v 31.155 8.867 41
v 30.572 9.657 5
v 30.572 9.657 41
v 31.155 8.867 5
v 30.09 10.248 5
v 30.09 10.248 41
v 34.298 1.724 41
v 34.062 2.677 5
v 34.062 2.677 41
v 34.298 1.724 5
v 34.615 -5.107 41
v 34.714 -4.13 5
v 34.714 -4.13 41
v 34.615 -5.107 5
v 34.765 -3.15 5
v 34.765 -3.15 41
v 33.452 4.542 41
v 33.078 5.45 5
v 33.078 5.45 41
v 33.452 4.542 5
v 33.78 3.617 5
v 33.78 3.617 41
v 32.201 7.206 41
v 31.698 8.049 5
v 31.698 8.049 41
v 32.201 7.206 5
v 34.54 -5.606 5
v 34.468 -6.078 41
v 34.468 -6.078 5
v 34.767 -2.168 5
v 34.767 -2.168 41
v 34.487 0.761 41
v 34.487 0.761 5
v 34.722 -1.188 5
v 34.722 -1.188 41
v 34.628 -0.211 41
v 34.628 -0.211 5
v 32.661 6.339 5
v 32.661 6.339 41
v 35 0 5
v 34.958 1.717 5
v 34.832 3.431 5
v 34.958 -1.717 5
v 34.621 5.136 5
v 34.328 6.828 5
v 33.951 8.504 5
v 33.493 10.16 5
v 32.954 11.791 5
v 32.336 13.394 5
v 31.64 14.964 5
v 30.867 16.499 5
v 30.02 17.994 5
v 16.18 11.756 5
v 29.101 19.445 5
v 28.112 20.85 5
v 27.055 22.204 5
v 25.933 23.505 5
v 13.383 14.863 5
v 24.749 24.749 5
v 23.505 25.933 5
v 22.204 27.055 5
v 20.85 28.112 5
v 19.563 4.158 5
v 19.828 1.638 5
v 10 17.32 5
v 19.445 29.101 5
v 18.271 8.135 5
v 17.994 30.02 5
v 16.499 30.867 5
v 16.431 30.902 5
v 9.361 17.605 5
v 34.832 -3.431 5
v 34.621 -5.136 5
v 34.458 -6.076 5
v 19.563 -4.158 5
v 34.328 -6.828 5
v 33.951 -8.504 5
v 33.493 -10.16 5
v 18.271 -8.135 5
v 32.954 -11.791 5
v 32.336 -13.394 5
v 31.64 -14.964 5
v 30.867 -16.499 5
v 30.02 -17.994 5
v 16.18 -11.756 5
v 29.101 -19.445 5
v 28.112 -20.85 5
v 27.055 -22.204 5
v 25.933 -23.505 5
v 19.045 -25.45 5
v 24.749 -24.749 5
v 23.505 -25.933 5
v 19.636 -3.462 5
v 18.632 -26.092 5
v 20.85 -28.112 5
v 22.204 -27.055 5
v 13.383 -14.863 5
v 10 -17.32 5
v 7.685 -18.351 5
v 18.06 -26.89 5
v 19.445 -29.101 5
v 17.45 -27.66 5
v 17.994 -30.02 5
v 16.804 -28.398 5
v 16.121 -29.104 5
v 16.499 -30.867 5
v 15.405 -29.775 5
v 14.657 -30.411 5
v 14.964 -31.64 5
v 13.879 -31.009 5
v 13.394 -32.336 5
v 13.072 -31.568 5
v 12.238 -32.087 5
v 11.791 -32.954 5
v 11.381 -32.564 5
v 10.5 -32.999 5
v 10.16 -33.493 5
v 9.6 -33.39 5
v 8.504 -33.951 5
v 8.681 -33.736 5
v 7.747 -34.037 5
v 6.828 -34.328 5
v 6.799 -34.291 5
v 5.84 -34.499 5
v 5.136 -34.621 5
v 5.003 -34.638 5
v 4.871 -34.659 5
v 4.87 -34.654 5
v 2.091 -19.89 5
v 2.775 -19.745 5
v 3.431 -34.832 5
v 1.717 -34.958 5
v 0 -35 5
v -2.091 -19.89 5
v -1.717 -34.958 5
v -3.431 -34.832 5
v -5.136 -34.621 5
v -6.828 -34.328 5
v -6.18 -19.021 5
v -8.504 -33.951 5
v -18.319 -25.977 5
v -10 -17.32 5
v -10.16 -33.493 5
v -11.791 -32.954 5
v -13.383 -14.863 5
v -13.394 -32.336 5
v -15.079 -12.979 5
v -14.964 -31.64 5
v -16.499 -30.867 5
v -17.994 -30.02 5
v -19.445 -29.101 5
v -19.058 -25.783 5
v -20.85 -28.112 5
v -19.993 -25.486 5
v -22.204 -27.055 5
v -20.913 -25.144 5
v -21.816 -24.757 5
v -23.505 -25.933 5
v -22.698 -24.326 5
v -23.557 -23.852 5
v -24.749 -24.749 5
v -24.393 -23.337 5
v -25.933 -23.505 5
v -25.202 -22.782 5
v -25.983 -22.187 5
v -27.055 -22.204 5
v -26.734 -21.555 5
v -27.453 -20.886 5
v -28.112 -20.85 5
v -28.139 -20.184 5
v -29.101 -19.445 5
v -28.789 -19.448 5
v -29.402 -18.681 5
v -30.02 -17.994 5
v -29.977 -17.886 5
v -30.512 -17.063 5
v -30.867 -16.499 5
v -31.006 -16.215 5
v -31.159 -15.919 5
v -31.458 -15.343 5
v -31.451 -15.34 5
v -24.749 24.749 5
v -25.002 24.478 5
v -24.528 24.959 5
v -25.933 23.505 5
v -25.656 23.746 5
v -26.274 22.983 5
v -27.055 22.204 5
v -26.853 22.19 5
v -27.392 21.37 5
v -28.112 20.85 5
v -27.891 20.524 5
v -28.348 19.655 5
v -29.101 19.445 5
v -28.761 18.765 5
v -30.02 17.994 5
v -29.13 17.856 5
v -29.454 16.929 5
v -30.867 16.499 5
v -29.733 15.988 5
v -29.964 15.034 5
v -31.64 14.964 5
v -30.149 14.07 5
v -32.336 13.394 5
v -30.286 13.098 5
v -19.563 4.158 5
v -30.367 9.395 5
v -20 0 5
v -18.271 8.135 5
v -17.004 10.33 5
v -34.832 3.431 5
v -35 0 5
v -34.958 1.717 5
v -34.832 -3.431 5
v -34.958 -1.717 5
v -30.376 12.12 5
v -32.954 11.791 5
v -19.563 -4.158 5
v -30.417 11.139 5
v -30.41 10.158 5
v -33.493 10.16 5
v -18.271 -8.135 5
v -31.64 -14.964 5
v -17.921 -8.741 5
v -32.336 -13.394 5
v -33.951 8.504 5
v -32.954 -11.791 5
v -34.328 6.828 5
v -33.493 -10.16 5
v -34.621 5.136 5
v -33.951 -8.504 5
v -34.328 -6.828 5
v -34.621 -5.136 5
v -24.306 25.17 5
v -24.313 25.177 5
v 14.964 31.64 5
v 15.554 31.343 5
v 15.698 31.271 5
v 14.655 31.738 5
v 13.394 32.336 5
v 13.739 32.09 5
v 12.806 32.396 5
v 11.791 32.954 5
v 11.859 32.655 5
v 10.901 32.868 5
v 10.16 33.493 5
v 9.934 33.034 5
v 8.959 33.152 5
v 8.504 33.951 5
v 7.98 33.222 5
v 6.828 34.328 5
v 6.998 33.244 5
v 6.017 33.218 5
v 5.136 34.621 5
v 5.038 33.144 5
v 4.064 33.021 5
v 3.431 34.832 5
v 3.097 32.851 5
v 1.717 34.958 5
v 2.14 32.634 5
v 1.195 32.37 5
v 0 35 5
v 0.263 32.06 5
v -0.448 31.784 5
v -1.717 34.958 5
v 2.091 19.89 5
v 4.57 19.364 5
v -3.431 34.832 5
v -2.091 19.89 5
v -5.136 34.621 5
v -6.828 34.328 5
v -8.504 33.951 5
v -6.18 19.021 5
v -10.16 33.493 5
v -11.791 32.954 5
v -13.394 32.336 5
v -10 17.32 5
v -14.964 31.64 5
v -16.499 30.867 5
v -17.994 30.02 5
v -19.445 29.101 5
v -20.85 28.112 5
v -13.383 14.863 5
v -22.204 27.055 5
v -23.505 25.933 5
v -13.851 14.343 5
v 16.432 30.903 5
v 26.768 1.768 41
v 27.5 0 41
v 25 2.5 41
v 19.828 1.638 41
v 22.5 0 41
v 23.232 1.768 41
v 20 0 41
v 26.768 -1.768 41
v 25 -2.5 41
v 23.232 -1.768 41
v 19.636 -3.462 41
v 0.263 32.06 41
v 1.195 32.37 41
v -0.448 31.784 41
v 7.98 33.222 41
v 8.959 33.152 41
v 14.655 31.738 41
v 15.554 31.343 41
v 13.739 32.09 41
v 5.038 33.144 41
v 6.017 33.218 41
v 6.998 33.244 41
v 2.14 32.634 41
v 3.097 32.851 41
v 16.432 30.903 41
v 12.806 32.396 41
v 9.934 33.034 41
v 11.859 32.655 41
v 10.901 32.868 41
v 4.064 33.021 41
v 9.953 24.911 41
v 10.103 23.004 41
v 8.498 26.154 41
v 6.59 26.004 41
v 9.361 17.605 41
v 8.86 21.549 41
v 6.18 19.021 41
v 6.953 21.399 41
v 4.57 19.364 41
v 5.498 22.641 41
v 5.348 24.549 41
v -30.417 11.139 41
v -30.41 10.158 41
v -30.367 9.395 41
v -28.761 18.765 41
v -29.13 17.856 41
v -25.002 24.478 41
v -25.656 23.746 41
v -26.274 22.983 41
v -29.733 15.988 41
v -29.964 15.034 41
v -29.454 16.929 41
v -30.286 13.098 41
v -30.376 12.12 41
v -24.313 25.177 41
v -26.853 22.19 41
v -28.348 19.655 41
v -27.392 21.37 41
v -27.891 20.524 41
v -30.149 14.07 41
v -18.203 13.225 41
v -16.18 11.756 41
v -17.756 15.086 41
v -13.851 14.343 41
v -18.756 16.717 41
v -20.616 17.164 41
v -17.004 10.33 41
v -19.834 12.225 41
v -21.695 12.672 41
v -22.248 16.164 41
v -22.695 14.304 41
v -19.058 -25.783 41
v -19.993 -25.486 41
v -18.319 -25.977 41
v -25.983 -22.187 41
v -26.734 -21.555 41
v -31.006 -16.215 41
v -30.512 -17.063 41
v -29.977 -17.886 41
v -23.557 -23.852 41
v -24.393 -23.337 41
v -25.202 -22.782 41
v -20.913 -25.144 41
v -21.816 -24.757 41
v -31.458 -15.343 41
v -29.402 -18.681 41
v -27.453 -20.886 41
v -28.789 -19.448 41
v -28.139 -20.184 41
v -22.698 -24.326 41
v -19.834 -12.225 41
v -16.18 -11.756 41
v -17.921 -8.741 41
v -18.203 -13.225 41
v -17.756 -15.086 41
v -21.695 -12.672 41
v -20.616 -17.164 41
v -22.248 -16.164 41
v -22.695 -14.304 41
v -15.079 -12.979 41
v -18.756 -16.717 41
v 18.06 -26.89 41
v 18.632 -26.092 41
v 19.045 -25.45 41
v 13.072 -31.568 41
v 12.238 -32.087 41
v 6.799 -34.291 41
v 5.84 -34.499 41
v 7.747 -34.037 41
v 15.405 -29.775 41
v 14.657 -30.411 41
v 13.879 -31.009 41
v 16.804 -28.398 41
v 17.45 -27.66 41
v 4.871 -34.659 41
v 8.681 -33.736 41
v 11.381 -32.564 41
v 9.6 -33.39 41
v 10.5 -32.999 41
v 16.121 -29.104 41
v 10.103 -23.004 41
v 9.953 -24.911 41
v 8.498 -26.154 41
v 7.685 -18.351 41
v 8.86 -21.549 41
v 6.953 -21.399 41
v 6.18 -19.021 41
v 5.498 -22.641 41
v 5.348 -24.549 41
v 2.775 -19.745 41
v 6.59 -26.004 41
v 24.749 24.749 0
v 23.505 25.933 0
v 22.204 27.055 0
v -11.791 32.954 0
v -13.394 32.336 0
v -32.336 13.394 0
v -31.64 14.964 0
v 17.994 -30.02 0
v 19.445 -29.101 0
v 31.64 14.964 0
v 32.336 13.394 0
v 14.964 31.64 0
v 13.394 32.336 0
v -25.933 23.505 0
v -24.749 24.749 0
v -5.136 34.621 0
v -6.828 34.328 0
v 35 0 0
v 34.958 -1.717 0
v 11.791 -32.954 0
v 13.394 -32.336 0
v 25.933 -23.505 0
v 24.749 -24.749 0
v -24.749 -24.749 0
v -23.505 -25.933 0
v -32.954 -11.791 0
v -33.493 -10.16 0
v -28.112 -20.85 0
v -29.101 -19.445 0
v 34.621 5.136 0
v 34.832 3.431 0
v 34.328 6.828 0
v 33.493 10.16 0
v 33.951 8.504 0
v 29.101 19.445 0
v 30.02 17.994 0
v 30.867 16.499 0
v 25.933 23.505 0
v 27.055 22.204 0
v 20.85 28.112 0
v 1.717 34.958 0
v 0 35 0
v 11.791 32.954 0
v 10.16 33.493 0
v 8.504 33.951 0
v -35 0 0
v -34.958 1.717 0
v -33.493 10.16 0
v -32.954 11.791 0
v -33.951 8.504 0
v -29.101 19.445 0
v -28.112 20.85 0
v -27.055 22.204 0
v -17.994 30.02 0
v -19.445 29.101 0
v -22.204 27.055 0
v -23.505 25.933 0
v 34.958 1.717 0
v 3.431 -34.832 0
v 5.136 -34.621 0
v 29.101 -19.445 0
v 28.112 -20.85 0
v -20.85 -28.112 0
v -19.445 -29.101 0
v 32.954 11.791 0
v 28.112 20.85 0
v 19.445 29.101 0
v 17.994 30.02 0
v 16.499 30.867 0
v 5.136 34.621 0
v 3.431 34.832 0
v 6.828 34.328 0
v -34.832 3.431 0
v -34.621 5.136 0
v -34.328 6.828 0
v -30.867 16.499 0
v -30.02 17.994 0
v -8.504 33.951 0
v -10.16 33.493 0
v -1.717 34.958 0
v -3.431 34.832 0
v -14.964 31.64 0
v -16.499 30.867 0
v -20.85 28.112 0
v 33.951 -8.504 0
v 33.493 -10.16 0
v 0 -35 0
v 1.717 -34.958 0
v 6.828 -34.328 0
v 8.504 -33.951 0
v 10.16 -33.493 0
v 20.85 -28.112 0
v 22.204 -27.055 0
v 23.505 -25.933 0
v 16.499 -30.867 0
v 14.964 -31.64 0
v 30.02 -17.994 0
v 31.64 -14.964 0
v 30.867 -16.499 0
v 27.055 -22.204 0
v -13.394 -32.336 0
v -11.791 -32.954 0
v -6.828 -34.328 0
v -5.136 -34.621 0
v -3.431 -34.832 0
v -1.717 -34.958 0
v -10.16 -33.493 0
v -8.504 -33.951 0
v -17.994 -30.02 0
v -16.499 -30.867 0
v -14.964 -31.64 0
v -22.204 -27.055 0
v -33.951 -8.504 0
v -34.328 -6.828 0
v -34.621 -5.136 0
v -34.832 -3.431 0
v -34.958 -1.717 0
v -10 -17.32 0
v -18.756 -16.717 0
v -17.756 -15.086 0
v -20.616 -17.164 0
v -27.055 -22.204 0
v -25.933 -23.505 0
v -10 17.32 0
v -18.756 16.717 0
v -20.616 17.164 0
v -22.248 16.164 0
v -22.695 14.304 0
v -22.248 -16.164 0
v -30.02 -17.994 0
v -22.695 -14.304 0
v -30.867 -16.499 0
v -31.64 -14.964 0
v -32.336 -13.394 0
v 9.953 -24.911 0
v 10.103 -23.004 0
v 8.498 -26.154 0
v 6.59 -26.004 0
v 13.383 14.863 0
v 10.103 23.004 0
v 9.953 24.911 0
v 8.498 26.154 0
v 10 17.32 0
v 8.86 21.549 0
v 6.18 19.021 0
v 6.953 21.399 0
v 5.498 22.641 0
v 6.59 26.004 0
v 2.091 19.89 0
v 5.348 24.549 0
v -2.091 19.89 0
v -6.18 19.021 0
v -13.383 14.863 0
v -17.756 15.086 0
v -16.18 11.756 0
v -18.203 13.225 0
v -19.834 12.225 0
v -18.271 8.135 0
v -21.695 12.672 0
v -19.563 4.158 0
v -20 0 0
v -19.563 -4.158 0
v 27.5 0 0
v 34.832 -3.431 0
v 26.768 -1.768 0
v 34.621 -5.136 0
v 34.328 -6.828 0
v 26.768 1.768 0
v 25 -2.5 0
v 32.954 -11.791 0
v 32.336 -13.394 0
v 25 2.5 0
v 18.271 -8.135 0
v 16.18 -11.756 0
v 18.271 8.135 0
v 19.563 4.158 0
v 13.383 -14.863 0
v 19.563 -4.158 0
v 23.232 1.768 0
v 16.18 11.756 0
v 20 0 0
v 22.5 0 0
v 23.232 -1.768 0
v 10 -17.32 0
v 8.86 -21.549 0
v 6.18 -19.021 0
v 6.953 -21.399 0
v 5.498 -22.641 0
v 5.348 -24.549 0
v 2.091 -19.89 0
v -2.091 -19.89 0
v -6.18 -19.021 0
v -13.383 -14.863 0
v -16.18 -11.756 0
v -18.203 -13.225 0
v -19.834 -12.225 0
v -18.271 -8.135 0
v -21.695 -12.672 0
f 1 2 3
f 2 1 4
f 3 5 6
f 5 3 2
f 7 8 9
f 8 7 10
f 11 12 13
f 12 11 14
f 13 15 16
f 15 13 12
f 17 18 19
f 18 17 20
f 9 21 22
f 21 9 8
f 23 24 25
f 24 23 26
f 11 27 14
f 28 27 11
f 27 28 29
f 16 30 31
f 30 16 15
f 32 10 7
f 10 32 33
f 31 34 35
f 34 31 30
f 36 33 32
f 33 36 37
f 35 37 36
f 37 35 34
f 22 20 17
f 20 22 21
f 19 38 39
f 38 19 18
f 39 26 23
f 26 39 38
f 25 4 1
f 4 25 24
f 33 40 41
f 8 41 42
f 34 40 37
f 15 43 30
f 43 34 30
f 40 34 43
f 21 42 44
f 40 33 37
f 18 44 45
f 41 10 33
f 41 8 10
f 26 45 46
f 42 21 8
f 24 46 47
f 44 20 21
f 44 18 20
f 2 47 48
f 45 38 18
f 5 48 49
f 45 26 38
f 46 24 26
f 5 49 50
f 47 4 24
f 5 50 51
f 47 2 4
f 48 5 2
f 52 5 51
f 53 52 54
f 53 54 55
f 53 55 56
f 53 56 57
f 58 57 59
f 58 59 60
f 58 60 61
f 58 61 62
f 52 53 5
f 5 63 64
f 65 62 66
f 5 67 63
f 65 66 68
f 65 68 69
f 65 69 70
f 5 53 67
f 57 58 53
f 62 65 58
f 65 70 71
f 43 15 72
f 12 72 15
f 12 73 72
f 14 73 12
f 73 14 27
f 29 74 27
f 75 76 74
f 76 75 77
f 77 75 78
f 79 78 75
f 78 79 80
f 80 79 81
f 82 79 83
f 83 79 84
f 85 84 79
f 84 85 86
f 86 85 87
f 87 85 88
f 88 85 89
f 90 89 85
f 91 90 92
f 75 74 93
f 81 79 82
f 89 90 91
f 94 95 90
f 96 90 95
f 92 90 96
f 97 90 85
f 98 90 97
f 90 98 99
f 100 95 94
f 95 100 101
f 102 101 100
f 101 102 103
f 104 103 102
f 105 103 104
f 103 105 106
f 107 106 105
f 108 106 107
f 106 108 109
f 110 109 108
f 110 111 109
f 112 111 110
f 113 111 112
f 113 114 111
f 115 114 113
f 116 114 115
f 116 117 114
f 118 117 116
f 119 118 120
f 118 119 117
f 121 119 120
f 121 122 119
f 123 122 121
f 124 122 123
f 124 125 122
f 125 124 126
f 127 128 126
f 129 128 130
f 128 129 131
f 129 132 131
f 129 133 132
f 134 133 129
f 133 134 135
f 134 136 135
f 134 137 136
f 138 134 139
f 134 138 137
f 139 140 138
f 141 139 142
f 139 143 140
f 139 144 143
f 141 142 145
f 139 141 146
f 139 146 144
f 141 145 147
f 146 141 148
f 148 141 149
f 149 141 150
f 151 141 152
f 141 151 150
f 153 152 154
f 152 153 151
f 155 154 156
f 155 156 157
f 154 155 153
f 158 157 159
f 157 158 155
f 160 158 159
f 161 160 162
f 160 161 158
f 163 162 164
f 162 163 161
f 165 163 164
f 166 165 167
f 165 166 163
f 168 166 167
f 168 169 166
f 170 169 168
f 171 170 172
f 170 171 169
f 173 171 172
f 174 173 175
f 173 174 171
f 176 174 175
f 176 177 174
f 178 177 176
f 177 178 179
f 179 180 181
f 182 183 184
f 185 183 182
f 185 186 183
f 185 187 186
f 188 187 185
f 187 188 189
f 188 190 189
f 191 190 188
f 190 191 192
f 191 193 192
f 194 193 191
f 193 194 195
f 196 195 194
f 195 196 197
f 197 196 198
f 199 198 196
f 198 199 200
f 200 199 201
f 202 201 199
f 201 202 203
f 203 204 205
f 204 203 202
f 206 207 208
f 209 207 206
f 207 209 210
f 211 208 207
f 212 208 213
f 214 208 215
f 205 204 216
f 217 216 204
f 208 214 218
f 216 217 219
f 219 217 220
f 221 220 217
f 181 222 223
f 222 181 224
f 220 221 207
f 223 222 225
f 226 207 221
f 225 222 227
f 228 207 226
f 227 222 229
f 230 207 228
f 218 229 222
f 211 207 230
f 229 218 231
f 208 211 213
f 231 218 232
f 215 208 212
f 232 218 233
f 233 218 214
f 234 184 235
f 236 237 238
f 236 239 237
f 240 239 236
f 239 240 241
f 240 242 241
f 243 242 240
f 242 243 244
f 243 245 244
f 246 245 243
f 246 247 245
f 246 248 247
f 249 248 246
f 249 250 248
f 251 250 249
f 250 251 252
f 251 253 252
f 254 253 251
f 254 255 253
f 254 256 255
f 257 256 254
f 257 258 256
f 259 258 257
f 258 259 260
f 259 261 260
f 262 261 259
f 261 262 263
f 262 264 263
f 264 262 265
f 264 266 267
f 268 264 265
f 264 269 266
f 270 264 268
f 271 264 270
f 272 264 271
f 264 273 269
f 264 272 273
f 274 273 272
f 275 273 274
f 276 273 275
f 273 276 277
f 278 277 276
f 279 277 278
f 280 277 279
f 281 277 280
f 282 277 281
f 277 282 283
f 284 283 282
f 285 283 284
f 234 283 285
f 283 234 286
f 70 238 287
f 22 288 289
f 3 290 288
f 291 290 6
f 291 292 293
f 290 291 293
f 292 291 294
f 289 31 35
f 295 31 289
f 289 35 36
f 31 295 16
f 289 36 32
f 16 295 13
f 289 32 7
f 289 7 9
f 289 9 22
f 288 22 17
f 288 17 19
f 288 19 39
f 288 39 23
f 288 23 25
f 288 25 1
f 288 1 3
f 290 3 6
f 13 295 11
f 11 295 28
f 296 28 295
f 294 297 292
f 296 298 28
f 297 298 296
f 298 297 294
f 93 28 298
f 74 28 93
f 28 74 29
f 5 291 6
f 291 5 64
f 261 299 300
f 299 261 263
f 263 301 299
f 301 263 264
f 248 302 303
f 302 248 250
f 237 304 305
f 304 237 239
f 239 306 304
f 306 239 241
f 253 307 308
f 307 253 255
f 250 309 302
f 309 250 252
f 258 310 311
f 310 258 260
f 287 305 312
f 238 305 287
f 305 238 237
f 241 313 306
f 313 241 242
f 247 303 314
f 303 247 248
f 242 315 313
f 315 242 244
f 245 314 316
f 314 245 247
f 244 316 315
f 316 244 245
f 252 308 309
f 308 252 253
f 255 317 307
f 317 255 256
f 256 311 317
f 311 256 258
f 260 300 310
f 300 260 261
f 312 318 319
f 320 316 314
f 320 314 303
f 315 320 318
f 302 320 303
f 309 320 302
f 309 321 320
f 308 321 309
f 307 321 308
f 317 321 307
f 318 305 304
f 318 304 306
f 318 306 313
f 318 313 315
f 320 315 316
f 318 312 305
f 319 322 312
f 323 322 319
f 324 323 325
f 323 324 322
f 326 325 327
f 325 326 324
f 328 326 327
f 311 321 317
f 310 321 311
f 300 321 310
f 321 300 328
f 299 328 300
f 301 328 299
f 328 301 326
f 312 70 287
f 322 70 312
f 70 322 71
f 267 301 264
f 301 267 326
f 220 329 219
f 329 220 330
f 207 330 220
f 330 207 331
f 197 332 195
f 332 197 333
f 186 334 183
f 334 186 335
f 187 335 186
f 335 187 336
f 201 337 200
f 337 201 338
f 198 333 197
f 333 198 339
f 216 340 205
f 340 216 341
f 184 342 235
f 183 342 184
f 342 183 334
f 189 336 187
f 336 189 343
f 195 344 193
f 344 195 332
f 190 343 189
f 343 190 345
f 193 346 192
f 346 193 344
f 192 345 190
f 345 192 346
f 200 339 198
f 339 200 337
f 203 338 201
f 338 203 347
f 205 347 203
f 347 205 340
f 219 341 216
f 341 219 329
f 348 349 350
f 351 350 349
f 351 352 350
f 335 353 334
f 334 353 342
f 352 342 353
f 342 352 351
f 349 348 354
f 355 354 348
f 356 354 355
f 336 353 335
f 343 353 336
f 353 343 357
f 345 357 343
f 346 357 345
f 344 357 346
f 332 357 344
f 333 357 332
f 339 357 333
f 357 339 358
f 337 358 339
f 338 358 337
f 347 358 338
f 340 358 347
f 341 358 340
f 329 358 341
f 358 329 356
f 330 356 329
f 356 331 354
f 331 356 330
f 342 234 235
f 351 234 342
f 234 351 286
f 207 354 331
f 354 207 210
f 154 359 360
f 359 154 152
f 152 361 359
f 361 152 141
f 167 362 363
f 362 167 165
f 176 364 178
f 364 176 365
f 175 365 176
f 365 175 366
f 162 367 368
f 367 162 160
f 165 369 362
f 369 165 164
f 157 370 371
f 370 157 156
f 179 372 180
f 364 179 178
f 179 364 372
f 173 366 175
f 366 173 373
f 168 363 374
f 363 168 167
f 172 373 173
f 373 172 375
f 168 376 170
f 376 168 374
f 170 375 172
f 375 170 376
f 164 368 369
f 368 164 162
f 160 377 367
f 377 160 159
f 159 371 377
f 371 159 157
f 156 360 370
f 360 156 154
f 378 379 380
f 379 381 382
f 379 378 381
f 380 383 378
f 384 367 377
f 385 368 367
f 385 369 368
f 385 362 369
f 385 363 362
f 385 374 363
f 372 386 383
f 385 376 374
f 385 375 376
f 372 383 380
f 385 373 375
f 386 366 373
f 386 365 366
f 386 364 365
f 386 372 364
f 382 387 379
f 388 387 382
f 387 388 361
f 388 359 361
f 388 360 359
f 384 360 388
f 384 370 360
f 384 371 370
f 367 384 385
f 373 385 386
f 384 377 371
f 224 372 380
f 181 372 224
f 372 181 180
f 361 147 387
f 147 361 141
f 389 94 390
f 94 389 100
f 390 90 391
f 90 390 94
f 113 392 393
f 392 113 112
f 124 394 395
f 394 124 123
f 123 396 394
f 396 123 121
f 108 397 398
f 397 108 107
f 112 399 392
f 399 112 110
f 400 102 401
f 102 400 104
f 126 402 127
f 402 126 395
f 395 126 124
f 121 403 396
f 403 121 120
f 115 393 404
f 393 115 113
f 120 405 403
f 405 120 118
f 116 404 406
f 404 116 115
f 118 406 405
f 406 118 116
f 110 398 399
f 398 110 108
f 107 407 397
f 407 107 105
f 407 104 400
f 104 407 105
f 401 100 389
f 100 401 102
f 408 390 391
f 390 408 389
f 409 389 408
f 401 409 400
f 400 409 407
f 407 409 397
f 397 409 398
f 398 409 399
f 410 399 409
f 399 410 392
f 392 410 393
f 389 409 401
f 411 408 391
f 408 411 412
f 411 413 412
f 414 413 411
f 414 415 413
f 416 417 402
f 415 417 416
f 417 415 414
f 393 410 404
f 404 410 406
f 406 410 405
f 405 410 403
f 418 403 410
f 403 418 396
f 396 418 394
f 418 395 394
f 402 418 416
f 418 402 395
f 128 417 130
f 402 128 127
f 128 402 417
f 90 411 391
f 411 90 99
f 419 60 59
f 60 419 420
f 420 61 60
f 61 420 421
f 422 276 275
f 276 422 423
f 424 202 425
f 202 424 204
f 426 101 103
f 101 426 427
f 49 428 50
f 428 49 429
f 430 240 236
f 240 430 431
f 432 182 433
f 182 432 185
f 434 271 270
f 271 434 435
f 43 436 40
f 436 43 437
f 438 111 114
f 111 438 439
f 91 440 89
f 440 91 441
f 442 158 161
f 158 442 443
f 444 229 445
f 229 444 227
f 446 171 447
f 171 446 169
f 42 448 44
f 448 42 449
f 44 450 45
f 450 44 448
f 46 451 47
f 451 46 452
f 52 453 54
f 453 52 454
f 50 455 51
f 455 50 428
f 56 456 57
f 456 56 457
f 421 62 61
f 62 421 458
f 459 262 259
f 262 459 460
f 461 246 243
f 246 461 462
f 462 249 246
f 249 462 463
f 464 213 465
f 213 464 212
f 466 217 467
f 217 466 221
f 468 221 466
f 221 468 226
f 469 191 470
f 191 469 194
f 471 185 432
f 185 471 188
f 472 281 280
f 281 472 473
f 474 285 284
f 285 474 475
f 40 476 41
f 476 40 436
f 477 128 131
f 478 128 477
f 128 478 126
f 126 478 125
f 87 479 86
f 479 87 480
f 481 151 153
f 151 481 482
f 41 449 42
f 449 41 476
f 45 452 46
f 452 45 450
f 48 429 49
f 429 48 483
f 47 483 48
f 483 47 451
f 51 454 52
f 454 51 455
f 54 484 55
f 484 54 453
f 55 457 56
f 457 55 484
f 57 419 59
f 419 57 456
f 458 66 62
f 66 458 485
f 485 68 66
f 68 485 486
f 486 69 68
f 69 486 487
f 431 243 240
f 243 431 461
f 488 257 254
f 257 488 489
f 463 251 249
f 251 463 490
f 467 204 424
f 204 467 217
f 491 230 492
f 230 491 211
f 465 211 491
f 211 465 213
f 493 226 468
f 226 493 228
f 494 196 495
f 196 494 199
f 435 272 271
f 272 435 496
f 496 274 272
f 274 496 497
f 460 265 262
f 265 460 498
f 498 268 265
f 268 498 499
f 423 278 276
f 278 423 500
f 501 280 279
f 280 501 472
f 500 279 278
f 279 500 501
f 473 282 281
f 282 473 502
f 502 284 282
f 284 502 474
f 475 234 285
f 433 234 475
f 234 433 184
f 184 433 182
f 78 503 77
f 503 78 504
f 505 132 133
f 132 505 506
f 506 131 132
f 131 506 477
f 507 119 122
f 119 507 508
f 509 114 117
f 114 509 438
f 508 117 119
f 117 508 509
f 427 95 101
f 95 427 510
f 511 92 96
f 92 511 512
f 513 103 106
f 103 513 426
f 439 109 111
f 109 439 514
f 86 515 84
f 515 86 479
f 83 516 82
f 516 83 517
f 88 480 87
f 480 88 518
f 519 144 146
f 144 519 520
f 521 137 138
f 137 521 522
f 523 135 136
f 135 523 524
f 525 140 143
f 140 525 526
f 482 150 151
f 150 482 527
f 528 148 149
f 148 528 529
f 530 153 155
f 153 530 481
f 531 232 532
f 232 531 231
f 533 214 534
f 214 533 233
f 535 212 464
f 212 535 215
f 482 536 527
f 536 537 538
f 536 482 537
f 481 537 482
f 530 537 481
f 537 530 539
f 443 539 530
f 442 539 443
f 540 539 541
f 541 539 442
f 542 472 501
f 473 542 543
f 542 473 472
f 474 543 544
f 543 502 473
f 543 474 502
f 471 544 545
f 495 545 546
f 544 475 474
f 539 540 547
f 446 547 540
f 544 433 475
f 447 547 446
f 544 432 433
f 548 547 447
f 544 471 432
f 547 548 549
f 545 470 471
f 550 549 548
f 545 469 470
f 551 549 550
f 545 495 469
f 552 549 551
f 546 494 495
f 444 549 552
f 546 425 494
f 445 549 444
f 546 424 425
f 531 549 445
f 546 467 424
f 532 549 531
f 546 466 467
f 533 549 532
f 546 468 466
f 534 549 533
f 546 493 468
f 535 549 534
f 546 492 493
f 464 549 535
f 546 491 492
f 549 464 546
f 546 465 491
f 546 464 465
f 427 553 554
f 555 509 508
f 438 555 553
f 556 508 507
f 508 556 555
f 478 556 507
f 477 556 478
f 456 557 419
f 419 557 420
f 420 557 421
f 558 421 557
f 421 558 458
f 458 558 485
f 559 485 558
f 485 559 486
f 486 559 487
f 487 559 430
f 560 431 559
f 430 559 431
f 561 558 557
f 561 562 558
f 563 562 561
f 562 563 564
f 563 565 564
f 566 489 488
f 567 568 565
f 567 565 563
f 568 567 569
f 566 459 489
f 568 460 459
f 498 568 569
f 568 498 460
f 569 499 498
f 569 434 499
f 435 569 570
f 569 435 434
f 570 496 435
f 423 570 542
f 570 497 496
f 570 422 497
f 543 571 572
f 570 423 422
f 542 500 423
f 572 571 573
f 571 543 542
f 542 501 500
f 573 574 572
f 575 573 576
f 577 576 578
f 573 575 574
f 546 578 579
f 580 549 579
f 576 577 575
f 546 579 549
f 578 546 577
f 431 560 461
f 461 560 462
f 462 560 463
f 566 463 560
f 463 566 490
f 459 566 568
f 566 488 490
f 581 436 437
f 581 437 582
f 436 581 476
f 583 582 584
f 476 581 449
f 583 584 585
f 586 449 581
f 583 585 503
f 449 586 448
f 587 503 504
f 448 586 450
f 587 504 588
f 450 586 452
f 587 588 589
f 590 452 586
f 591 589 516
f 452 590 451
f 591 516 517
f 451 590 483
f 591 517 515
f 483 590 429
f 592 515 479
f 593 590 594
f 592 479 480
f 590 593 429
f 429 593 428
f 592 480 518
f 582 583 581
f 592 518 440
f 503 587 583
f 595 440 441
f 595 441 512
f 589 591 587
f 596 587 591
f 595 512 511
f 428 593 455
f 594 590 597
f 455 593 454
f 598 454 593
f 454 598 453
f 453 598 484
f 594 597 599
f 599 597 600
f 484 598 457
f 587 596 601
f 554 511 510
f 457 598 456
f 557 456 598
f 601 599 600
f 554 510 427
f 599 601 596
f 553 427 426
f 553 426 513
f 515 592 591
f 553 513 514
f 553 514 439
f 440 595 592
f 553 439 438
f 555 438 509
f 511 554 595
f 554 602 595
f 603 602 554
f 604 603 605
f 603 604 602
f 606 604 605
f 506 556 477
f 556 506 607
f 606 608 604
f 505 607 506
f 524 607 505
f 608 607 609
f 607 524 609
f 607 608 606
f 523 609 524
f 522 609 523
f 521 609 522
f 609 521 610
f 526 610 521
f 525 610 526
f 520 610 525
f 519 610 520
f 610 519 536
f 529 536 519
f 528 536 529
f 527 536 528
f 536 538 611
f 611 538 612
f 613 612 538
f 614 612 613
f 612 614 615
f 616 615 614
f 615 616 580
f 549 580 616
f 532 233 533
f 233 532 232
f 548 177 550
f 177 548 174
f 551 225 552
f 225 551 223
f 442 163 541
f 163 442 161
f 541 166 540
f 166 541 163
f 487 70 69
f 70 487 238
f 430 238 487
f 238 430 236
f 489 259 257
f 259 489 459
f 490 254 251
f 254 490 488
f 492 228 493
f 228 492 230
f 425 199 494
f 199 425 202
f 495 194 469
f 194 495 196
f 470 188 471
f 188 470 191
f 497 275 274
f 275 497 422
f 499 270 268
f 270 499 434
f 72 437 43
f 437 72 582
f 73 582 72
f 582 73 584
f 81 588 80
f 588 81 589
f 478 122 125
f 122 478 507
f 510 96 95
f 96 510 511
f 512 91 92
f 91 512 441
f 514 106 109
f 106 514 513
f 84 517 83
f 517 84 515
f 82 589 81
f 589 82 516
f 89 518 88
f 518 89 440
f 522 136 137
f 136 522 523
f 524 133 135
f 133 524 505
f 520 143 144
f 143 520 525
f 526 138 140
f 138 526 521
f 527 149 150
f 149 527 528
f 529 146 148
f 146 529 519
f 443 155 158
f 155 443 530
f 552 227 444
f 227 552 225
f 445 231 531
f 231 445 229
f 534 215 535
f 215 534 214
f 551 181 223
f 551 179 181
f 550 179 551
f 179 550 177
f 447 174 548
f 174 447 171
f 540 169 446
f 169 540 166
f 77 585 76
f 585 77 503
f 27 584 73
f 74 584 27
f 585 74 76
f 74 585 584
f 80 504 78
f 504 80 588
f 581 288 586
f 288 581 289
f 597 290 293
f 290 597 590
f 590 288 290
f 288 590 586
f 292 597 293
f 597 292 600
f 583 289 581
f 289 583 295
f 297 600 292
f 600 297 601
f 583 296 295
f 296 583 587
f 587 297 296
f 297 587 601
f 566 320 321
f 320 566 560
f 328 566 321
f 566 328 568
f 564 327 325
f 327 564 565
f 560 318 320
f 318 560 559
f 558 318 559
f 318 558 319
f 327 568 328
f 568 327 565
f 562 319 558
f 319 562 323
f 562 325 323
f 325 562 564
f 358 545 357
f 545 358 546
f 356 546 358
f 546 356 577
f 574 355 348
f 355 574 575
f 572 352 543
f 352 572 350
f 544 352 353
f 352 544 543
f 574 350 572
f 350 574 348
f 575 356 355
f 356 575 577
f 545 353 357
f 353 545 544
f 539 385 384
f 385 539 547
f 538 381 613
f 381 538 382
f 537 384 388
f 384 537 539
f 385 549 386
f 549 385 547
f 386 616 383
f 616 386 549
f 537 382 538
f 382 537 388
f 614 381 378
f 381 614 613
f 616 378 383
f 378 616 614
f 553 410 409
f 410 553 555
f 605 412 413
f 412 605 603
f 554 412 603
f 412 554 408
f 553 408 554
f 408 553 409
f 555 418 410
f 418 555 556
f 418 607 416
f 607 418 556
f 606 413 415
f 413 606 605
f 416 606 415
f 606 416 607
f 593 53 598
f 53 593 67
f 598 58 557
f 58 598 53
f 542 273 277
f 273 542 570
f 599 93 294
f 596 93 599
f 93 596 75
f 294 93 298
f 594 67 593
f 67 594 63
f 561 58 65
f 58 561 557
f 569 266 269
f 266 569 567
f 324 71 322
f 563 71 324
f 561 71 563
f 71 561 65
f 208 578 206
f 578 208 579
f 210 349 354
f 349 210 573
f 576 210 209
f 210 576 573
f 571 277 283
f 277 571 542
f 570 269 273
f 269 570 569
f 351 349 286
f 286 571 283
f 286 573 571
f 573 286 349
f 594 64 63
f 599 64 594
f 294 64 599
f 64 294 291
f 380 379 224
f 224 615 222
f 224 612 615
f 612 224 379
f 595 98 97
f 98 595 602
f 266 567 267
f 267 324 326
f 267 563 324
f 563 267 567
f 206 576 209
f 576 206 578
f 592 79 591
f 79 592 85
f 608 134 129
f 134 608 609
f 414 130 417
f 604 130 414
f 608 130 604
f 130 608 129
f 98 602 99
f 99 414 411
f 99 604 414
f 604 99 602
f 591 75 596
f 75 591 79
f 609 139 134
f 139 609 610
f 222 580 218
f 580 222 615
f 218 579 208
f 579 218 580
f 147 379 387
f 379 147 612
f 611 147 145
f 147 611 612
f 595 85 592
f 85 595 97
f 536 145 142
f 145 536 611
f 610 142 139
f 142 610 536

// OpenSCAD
supports=5;
m5_distance=25;
base_height=5;
support_height=36;

module pie_slice(r=3.0, h=10, a=30) {
  $fn=128;
  intersection() {
    cylinder(r=r, h=h, center=true);
    translate([0,0,-1*(h/2)]) cube([r,r,h + 0.1]);
    translate([0,0,-1*(h/2)]) rotate(a-90) cube([r,r,h + 0.1]);
  }
}

difference() {
    union() {
        translate([0, 0, base_height/2]) cylinder(r=m5_distance+10, h=base_height, center=true, $fn=128);
        for (i=[0:(360/supports):360]) {
            translate([0, 0, (support_height/2)+base_height]) {
                rotate([0,0,i-10]) translate([15,0,0]) pie_slice(r=20,h=support_height,a=50);
            }
        }
    }
    translate([0, 0, (base_height+support_height)/2]) union() {
        for (i=[0:(360/supports):360]) {
            rotate([0,0,i]) {
                translate([m5_distance, 0, 0]) {
                    cylinder(r=2.5, h=base_height+0.1+support_height, center=true);
                }
            }
        }
    }

    translate([0, 0, (base_height+support_height)/2]) cylinder(r=20, h=base_height+support_height+0.1, center=true);
}
